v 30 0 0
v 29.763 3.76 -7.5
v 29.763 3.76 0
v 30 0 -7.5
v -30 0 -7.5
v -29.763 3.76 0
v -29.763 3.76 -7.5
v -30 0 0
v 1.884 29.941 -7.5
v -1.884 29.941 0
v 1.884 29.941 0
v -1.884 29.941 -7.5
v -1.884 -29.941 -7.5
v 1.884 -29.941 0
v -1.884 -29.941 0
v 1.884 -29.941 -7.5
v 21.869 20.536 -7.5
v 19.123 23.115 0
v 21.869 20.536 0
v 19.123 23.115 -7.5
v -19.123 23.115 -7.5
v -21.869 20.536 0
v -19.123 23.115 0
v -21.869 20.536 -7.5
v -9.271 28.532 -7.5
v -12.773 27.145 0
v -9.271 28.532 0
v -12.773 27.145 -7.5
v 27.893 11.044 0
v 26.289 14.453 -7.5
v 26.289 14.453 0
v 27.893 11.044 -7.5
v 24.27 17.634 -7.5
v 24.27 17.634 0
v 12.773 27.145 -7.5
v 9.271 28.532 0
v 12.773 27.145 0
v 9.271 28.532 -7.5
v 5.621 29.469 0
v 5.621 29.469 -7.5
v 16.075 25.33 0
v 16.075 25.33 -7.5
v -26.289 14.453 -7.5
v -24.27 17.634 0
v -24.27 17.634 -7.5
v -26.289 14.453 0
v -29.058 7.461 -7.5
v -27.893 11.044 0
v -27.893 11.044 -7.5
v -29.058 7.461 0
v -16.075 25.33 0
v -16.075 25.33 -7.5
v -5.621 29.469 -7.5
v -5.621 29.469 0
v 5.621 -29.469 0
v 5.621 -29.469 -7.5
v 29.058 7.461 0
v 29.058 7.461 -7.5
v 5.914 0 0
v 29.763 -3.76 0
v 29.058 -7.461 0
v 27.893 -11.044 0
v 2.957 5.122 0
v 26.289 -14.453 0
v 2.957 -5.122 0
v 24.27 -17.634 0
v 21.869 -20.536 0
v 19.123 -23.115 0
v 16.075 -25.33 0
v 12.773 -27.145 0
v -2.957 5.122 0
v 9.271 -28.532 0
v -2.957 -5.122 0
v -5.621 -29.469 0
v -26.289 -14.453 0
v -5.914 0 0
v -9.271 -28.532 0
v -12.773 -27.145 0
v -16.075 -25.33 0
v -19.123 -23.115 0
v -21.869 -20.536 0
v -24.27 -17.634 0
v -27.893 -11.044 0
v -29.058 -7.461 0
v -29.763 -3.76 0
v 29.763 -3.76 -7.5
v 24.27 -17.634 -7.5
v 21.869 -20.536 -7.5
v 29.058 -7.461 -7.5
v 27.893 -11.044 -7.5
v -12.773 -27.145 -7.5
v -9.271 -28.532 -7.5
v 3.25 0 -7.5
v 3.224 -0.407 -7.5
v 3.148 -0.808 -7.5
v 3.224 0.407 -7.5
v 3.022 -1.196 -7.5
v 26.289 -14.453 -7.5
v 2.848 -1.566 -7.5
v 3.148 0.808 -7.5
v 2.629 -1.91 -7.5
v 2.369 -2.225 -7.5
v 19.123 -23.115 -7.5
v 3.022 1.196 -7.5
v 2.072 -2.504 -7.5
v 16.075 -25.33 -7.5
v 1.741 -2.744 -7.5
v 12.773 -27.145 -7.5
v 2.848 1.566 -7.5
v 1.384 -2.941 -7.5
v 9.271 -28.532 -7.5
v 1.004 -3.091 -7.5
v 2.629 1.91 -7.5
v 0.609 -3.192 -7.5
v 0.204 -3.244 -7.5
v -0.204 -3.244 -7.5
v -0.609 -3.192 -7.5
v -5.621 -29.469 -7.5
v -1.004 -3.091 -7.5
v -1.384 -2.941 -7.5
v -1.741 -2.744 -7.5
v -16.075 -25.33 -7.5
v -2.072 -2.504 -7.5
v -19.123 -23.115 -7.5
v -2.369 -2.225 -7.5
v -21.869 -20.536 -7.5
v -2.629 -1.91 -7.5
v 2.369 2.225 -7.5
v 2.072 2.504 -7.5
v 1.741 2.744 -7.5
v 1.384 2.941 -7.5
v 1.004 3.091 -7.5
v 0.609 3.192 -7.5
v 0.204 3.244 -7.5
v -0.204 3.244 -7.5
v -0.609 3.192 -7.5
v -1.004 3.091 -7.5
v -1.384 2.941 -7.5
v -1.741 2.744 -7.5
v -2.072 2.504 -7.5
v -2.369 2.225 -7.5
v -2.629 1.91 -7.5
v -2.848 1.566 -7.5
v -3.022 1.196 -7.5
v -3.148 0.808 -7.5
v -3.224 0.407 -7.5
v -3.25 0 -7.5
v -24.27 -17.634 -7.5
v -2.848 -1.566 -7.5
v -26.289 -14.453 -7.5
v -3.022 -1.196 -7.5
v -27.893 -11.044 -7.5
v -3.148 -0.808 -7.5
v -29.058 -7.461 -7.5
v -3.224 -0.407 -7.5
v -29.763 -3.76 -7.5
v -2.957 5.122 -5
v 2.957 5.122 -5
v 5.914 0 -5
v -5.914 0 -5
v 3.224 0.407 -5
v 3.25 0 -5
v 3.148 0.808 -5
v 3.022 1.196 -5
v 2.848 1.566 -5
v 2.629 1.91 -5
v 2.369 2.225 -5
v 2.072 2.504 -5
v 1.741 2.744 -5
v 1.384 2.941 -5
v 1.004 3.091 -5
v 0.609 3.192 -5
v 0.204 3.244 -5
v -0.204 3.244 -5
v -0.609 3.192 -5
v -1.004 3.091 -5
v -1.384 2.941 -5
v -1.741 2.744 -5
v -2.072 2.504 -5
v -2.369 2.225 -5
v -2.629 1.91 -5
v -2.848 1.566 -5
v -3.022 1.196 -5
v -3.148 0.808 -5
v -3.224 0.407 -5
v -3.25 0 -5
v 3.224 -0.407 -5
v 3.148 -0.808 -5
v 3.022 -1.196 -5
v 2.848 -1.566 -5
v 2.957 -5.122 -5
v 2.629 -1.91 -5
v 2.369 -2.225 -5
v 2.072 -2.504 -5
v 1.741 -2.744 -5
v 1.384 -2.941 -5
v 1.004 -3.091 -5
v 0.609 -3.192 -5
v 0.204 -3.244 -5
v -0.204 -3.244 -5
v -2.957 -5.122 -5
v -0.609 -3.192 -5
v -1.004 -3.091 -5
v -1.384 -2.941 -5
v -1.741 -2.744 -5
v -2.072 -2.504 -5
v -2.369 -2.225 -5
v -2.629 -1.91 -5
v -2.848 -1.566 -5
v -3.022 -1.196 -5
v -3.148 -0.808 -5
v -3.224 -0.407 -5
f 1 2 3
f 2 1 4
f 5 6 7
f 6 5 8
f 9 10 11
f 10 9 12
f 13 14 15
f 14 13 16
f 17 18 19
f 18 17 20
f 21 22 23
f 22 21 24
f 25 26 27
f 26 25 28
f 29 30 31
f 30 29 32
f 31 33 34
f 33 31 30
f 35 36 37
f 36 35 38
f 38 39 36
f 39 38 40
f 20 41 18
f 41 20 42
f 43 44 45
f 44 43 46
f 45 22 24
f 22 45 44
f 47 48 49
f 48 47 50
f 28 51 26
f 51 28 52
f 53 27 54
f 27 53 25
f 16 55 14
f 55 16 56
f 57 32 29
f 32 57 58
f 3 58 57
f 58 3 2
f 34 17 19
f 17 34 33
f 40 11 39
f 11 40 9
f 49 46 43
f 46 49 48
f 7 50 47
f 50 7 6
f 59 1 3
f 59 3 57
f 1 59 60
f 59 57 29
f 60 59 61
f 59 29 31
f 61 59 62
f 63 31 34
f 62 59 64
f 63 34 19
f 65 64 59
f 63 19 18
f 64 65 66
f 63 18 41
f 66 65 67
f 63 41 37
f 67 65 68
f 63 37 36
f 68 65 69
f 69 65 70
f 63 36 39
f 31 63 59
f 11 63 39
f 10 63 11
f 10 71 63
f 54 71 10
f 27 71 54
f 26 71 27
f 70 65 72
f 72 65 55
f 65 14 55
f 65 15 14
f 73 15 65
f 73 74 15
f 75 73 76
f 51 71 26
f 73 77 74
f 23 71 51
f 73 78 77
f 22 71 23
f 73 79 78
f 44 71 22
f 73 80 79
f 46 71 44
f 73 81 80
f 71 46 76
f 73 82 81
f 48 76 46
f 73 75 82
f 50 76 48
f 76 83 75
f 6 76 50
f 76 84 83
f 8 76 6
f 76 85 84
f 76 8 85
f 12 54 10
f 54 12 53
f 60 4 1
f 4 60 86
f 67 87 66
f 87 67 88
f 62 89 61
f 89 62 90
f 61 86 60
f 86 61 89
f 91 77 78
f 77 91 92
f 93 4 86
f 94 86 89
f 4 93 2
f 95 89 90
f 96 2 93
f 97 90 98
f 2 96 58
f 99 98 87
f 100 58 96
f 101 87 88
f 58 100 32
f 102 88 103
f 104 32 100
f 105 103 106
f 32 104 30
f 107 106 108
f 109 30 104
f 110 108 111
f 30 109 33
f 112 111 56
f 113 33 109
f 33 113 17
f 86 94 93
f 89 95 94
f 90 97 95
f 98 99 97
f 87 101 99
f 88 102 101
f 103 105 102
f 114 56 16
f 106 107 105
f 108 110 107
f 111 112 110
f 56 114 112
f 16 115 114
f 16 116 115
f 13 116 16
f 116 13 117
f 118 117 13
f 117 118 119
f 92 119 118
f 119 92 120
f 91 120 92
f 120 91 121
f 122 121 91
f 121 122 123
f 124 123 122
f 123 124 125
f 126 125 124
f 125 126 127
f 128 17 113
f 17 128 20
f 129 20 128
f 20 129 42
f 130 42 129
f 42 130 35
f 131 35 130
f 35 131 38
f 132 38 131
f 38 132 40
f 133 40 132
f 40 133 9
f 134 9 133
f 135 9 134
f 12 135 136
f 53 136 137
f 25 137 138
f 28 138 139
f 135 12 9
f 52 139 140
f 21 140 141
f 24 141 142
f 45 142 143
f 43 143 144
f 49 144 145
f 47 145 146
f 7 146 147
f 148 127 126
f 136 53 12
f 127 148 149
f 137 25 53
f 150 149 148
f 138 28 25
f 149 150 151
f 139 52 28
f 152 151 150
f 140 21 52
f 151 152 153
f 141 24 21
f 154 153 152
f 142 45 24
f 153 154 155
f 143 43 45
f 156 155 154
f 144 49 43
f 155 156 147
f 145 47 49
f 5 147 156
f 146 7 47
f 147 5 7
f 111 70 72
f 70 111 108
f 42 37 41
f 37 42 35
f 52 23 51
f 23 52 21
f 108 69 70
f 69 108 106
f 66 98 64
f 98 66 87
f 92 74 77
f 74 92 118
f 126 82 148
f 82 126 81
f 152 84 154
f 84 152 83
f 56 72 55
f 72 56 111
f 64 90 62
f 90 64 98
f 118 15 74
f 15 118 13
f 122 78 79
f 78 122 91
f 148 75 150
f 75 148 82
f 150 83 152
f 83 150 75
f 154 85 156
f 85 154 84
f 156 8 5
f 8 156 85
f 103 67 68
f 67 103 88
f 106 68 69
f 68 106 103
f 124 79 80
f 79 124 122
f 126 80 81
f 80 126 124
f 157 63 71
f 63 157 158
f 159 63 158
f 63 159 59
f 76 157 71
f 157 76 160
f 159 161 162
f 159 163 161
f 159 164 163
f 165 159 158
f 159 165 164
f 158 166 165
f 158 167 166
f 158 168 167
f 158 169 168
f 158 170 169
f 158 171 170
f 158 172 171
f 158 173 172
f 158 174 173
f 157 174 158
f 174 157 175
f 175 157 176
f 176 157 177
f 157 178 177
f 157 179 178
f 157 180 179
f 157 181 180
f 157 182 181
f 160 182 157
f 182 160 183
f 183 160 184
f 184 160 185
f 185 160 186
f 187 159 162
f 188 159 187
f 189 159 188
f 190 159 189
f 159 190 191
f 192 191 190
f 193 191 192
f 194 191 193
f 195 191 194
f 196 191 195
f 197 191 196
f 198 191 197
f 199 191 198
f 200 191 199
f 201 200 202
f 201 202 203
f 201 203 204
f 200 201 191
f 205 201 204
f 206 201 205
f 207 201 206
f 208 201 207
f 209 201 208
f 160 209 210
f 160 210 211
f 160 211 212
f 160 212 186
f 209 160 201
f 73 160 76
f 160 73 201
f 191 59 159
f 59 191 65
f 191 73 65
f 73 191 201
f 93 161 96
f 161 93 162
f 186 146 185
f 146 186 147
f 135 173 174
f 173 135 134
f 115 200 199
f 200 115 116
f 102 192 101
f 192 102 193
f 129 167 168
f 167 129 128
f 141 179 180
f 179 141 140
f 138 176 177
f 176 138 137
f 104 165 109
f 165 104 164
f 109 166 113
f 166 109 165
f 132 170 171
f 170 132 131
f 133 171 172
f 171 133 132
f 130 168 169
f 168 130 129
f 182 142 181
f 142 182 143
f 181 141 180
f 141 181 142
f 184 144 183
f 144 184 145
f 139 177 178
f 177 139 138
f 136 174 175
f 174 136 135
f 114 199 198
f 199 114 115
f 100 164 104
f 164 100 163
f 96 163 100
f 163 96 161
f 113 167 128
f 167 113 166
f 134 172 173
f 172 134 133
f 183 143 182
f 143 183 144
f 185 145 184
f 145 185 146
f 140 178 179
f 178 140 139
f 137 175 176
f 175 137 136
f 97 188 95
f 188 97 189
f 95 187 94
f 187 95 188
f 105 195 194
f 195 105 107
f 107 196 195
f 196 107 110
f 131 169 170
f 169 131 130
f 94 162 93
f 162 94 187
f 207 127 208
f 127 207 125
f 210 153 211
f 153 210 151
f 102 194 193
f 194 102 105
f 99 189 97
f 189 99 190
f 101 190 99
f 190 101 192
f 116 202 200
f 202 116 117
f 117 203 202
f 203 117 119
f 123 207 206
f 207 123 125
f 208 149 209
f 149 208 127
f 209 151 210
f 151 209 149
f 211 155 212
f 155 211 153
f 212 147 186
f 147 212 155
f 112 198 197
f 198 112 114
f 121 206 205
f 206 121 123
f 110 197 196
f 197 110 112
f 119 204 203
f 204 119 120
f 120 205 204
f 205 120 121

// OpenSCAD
$fn = 50;


difference() {
	union() {
		translate(v = [0, 0, -7.5000000000]) {
			cylinder(h = 7.5000000000, r = 30.0000000000);
		}
		translate(v = [0, 0, -6.0000000000]) {
			cylinder(h = 6, r = 2.8750000000);
		}
	}
	union() {
		translate(v = [0, 0, 0]) {
			rotate(a = [0, 0, 0]) {
				difference() {
					union() {
						translate(v = [0, 0, -5]) {
							linear_extrude(height = 5) {
								polygon(points = [[5.9142500000, 0.0000000000], [2.9571250000, 5.1218907443], [-2.9571250000, 5.1218907443], [-5.9142500000, 0.0000000000], [-2.9571250000, -5.1218907443], [2.9571250000, -5.1218907443]]);
							}
						}
					}
					union();
				}
			}
		}
		#translate(v = [0, 0, -100.0000000000]) {
			cylinder(h = 200, r = 3.2500000000);
		}
	}
}
